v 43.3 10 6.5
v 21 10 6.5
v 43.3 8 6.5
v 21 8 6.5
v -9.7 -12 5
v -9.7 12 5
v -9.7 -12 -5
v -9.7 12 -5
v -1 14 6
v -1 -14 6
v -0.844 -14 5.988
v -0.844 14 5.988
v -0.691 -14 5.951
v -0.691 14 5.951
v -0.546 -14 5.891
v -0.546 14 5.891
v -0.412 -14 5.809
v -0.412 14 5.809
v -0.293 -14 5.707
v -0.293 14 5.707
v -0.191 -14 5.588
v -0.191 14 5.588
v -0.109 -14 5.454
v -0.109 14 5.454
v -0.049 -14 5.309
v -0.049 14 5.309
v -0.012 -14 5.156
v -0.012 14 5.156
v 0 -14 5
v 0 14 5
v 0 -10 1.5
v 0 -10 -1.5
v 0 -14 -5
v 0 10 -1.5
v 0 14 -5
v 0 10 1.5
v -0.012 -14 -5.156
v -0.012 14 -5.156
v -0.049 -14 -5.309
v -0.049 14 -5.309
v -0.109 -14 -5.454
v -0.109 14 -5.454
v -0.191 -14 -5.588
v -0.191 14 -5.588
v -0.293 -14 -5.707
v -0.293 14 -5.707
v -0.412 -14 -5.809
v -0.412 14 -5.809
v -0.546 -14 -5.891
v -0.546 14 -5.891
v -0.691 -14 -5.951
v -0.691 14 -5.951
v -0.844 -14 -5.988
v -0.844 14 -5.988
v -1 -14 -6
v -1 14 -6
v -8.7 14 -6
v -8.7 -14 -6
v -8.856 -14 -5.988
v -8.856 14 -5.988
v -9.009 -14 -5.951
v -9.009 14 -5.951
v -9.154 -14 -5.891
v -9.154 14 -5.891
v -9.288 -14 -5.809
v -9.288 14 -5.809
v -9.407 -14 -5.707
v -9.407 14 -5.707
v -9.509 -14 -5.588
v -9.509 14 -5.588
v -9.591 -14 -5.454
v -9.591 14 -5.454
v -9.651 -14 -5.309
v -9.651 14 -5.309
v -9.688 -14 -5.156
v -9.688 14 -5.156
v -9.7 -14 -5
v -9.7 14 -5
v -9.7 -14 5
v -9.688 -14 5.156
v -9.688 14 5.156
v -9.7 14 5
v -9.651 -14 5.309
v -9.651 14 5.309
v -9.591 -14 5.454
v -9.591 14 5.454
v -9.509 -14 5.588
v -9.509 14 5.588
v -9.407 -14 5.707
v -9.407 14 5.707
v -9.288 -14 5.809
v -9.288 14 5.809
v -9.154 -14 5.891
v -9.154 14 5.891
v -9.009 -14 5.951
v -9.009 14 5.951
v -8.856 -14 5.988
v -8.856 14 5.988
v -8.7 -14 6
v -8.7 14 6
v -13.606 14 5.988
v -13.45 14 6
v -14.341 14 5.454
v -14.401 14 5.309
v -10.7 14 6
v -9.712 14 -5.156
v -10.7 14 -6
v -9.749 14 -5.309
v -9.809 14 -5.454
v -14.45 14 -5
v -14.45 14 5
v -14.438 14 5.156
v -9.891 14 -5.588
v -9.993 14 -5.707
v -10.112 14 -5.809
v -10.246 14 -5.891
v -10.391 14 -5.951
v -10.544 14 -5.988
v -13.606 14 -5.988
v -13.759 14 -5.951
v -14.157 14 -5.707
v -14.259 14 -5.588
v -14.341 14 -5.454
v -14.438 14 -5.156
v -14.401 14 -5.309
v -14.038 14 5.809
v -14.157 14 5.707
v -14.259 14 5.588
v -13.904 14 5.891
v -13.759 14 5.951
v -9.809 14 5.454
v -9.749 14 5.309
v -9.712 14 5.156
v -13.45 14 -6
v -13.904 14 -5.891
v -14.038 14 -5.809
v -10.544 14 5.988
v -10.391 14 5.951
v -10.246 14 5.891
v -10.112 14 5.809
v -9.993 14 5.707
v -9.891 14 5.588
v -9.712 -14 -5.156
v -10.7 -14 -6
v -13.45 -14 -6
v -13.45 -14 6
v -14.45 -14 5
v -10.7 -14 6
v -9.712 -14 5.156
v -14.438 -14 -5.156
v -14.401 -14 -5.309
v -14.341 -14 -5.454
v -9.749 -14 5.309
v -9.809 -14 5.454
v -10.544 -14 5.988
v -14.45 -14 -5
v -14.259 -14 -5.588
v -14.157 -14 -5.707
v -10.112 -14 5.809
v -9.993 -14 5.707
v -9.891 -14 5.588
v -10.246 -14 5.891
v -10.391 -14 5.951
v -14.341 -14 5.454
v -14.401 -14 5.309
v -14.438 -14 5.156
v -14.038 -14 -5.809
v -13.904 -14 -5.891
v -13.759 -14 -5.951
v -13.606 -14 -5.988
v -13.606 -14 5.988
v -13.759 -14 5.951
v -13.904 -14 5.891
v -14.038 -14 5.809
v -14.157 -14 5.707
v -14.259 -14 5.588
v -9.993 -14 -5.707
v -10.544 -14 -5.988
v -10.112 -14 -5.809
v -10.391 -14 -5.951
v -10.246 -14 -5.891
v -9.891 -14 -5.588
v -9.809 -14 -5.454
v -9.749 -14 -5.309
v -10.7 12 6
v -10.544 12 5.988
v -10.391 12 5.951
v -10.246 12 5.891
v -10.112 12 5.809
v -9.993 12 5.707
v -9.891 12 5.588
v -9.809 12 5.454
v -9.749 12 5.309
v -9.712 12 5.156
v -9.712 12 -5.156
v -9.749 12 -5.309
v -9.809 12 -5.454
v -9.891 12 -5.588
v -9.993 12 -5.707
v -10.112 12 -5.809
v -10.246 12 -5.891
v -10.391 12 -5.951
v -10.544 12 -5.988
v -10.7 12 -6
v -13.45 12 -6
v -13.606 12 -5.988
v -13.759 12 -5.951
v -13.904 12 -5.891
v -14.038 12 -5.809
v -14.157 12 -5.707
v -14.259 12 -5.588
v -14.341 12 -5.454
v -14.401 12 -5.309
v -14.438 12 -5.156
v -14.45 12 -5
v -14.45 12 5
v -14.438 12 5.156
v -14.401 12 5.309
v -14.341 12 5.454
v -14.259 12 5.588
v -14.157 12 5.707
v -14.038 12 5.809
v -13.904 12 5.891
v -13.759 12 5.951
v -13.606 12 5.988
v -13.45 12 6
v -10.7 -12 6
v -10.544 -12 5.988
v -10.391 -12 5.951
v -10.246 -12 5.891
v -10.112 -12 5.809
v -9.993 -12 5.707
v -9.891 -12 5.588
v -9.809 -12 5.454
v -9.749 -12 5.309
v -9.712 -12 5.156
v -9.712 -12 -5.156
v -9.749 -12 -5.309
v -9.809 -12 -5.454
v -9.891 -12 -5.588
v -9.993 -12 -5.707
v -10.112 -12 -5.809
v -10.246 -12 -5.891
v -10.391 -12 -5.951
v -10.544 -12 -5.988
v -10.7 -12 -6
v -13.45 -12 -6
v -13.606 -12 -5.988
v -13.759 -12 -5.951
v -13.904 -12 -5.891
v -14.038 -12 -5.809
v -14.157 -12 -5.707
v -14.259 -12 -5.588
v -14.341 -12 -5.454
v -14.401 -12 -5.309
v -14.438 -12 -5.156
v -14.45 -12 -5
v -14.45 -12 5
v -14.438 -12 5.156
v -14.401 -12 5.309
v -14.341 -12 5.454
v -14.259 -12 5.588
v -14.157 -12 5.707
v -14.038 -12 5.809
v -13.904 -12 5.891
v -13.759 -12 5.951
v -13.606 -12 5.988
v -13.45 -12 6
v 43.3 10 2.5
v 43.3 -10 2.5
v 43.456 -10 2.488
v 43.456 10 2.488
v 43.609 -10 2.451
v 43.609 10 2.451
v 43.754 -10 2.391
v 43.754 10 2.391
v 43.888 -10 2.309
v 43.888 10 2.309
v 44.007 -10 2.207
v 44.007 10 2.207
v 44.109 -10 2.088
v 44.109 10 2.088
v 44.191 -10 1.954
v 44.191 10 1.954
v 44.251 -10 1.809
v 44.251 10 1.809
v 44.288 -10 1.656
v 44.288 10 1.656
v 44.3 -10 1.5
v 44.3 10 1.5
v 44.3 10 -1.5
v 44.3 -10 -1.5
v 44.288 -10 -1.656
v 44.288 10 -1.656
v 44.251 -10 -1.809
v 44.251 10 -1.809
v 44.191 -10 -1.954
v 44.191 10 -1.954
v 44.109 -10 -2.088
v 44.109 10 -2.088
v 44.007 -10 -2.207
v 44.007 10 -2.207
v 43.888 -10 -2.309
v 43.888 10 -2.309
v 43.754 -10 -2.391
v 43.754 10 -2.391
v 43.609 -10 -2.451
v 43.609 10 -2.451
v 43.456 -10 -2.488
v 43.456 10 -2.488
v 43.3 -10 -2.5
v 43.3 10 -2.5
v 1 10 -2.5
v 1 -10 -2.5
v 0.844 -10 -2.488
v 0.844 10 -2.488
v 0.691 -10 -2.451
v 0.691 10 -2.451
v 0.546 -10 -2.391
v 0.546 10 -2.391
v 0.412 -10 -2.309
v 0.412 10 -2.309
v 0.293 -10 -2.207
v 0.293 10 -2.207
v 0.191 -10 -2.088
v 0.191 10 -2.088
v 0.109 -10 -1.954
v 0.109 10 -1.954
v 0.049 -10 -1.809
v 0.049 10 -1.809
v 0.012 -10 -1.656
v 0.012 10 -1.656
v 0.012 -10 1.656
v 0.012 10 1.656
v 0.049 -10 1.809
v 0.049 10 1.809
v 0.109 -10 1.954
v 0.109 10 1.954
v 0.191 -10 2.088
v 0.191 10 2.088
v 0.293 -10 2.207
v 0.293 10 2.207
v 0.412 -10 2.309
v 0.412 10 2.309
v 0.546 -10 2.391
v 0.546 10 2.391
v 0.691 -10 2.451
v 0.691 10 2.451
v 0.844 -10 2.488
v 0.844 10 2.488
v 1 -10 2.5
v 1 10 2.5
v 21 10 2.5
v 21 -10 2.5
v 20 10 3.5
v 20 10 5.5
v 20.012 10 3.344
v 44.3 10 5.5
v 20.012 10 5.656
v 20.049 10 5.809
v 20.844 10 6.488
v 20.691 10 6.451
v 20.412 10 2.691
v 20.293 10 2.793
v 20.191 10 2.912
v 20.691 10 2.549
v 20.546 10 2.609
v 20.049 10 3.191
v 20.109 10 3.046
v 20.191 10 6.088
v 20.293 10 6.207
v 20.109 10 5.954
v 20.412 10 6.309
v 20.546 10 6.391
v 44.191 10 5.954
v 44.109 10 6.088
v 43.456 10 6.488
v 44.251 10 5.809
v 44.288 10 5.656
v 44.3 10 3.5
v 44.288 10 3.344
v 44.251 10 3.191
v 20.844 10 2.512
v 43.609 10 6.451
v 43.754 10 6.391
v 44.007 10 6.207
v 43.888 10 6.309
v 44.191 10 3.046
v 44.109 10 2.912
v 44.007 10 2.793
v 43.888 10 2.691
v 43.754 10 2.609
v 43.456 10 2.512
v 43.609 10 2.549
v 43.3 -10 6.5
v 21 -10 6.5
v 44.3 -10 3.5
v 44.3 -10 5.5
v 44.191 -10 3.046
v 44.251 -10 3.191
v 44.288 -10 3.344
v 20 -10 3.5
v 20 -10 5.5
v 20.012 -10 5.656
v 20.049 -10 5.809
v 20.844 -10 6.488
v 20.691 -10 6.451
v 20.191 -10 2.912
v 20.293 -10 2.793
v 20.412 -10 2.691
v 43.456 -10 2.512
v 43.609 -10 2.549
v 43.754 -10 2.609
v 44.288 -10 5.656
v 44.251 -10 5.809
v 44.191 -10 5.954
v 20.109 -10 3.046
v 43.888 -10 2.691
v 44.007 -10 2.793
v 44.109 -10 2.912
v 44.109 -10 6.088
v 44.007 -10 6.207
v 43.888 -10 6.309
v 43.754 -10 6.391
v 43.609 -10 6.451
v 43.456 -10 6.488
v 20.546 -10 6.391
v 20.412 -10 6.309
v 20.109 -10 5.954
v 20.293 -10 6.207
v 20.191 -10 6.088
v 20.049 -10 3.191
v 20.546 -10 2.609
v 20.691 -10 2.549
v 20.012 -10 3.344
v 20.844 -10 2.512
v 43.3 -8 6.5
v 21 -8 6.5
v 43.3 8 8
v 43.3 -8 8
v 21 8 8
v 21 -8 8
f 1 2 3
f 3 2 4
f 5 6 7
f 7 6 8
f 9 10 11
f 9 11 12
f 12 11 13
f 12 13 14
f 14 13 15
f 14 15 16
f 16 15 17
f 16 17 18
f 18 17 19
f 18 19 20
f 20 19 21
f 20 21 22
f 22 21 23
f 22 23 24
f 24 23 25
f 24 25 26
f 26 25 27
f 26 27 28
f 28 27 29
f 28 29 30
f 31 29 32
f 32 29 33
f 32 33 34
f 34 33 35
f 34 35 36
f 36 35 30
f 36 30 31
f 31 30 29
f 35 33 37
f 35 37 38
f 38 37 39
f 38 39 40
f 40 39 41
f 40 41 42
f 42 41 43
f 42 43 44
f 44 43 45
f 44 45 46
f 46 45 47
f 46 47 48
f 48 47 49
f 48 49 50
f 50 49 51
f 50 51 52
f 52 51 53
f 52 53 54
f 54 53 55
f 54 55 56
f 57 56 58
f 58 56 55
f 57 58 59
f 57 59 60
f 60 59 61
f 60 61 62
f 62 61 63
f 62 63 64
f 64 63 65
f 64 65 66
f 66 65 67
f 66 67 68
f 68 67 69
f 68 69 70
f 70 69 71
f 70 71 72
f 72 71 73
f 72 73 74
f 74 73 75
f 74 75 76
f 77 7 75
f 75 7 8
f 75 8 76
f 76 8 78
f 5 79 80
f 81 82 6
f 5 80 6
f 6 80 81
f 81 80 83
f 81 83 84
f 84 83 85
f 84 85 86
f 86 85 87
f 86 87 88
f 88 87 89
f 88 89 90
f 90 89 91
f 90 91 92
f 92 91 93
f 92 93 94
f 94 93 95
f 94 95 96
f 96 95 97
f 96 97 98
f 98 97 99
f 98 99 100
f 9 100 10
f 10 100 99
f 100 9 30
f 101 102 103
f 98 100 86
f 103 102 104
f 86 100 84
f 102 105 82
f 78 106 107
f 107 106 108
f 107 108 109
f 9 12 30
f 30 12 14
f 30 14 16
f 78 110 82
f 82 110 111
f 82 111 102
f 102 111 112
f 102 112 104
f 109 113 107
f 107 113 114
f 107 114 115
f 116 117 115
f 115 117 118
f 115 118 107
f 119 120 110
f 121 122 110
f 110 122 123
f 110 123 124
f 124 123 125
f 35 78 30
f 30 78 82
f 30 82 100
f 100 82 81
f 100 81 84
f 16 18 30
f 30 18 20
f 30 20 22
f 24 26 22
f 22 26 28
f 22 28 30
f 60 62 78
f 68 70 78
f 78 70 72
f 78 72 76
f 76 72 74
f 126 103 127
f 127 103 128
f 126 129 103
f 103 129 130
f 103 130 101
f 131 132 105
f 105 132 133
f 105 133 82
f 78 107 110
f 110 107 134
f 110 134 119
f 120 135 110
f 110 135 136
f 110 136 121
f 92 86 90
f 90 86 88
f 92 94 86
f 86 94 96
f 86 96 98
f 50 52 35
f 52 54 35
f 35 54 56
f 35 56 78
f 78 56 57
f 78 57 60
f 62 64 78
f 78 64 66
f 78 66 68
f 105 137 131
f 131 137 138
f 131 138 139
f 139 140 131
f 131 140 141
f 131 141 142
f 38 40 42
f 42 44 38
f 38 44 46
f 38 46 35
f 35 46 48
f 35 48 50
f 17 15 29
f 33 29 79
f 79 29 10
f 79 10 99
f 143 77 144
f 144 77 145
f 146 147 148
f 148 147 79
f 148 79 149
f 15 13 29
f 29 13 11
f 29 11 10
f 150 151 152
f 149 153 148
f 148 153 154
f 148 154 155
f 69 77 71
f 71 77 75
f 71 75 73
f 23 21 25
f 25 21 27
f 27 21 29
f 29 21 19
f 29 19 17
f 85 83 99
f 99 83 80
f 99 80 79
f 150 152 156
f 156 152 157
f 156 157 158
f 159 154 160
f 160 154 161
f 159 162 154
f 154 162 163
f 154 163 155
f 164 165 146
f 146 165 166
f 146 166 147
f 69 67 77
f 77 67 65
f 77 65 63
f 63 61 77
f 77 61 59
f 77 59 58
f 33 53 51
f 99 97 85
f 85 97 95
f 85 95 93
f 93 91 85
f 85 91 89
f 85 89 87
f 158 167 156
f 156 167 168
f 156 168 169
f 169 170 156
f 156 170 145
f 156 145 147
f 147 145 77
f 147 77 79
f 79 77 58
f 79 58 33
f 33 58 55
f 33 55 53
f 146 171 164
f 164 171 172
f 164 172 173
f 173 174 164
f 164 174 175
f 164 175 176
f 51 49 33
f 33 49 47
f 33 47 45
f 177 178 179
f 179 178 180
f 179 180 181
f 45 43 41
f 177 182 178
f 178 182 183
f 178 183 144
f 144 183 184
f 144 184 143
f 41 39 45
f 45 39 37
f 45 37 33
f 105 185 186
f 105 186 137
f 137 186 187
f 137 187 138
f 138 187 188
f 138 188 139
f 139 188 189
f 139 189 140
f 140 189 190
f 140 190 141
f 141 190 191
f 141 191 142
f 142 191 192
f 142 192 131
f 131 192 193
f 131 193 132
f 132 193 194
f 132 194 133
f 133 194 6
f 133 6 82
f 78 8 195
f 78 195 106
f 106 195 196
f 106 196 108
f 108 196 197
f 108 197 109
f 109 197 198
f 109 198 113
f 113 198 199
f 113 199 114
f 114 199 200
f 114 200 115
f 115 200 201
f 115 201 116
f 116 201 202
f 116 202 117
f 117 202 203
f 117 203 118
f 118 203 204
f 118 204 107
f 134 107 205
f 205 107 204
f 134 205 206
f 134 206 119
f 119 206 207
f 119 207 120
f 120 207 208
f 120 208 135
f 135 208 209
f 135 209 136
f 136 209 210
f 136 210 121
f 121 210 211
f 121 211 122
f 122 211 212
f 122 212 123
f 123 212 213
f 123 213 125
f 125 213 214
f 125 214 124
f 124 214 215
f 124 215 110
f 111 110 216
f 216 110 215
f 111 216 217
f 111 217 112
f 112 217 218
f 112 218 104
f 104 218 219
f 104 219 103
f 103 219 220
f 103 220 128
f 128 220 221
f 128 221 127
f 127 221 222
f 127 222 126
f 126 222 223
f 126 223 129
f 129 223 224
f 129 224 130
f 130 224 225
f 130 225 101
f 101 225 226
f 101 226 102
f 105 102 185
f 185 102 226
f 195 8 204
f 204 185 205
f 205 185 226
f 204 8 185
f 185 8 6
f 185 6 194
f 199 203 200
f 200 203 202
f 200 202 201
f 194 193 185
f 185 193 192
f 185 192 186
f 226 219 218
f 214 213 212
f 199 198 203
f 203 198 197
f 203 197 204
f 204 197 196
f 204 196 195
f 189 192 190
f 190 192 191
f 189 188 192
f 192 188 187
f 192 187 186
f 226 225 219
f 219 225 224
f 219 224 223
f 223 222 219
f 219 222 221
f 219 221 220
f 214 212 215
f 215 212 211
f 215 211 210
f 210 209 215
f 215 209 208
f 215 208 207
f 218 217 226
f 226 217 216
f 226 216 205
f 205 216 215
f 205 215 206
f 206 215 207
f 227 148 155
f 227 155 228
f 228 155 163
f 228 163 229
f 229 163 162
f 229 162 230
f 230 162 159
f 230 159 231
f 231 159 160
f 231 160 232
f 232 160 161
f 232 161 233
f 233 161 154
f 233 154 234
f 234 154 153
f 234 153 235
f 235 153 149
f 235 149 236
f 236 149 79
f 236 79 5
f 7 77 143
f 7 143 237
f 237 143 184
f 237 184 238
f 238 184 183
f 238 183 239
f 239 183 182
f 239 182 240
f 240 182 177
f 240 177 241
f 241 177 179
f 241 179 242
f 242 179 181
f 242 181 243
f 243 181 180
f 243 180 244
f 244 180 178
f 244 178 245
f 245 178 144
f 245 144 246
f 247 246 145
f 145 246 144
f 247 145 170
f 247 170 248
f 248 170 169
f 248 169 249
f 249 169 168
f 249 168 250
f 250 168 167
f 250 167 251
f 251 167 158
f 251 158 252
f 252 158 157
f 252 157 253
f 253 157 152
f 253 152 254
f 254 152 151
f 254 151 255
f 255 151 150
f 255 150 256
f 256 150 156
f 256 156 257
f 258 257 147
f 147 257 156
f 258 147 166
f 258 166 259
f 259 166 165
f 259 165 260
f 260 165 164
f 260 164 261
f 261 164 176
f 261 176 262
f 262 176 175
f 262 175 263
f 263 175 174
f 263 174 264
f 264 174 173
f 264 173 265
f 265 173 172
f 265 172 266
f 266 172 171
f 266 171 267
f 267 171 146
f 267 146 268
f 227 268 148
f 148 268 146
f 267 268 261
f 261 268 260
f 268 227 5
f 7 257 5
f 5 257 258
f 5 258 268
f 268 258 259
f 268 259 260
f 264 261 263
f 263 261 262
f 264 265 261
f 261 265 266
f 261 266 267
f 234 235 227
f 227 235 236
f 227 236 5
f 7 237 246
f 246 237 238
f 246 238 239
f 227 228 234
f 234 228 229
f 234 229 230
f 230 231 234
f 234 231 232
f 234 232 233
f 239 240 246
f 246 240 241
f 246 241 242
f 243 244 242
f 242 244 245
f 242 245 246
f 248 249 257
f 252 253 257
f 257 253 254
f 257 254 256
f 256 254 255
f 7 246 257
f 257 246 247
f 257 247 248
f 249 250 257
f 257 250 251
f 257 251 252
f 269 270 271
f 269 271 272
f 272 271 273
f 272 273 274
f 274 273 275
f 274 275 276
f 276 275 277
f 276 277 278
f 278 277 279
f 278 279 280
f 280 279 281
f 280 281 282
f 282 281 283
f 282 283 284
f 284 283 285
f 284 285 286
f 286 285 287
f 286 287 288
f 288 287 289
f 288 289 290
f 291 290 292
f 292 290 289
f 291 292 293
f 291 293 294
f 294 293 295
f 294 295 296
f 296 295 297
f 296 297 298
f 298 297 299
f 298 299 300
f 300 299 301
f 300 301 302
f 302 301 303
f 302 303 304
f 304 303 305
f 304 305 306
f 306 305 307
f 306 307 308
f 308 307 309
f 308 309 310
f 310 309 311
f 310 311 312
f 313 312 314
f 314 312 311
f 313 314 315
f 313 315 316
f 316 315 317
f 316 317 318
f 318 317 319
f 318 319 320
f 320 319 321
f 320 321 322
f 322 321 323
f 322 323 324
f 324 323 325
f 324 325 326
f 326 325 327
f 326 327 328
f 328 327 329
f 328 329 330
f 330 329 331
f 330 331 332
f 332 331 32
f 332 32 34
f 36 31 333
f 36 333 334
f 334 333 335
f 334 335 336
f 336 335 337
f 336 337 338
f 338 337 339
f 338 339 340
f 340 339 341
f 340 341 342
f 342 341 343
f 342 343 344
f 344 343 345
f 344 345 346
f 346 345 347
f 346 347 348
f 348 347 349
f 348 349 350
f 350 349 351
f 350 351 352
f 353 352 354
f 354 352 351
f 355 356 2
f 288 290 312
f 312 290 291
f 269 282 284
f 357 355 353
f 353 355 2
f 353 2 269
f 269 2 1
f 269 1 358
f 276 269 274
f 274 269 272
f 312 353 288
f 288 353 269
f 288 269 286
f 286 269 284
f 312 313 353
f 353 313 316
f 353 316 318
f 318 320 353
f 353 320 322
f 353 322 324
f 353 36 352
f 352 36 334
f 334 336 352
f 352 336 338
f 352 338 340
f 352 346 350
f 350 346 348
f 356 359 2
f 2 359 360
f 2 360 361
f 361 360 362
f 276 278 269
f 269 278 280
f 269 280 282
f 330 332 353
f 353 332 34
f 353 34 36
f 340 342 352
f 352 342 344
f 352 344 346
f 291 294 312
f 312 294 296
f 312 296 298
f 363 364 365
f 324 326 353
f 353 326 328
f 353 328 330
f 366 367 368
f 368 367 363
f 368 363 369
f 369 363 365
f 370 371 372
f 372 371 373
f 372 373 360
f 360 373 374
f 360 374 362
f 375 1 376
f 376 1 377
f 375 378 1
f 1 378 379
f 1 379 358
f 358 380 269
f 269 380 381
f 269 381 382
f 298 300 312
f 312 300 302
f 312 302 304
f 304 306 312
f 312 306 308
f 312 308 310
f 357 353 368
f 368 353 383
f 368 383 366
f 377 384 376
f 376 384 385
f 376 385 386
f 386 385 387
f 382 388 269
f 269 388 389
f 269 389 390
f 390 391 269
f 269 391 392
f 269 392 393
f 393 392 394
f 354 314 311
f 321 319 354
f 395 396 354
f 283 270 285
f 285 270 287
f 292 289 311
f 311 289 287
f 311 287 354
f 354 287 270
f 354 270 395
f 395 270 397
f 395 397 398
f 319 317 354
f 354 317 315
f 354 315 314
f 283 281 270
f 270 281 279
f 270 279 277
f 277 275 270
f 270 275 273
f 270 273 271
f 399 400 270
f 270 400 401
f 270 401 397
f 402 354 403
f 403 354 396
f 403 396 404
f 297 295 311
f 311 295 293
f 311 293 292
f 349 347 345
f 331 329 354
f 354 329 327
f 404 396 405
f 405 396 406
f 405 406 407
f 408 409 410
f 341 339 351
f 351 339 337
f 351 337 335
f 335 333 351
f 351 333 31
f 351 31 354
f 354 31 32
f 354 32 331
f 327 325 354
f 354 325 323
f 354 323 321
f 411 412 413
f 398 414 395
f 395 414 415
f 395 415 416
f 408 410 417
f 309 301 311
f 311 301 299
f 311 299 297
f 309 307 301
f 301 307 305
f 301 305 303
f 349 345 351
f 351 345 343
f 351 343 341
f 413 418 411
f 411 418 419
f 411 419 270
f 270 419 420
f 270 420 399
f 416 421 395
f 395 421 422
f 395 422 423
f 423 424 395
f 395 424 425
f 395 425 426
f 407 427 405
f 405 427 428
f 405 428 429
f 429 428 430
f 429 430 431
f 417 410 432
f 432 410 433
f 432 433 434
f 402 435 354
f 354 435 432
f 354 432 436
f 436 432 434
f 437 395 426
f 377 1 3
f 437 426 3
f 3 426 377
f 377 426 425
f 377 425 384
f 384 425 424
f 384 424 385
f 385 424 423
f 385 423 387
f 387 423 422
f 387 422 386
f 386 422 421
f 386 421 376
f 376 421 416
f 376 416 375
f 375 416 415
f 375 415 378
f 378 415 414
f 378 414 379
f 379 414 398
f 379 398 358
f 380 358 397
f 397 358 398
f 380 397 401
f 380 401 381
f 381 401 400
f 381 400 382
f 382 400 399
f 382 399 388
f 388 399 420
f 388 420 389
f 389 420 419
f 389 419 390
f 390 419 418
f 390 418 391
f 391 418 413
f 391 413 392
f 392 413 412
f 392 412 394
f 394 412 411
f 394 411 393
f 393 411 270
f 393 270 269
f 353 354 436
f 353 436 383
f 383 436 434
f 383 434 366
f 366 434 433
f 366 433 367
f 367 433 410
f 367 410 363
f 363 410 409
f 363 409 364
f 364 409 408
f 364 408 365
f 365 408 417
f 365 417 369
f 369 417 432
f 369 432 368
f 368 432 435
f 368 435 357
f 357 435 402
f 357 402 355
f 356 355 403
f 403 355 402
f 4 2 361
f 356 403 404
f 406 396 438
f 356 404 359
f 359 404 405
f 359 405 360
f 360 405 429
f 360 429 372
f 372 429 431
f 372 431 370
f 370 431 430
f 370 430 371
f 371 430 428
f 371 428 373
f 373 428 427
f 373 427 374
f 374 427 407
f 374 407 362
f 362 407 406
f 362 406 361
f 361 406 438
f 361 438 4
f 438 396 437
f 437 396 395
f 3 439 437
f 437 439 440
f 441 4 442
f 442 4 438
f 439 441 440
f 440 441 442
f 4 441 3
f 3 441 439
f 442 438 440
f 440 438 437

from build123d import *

# Parameters (mm, degrees)
SLIDER_START          = -14
SLIDER_DEPTH          = 28
RAIL_LIP_TOP_START    = 12
RAIL_LIP_TOP_DEPTH    = 2
RAIL_LIP_BOTTOM_START = -14
RAIL_LIP_BOTTOM_DEPTH = 2
FINGER_START          = -10
FINGER_DEPTH          = 20
JAW_START             = -10
JAW_DEPTH             = 20
GRIP_PAD_START        = -8
SK_6_W                = 22.3
SK_6_H                = 1.5
GRIP_PAD_DEPTH        = 16


with BuildPart() as part:
    # SK_1 → Slider (new body)
    with BuildSketch(Plane(origin=(0, 0, 0), x_dir=(1, 0, 0), z_dir=(0, 1, 0)).offset(SLIDER_START)):
        with BuildLine():
            Line((-8.7, -6), (-1, -6))
            ThreePointArc((-1, -6), (-0.292893219, -5.707106781), (0, -5))
            Line((0, -5), (0, 5))
            ThreePointArc((0, 5), (-0.292893219, 5.707106781), (-1, 6))
            Line((-1, 6), (-8.7, 6))
            ThreePointArc((-8.7, 6), (-9.407106781, 5.707106781), (-9.7, 5))
            Line((-9.7, 5), (-9.7, -5))
            ThreePointArc((-9.7, -5), (-9.407106781, -5.707106781), (-8.7, -6))
        make_face()
    extrude(amount=SLIDER_DEPTH)

    # SK_2 → Rail_Lip_Top (add)
    with BuildSketch(Plane(origin=(0, 0, 0), x_dir=(1, 0, 0), z_dir=(0, 1, 0)).offset(RAIL_LIP_TOP_START)):
        with BuildLine():
            Line((-13.45, -6), (-10.7, -6))
            ThreePointArc((-10.7, -6), (-9.992893219, -5.707106781), (-9.7, -5))
            Line((-9.7, -5), (-9.7, 5))
            ThreePointArc((-9.7, 5), (-9.992893219, 5.707106781), (-10.7, 6))
            Line((-10.7, 6), (-13.45, 6))
            ThreePointArc((-13.45, 6), (-14.157106781, 5.707106781), (-14.45, 5))
            Line((-14.45, 5), (-14.45, -5))
            ThreePointArc((-14.45, -5), (-14.157106781, -5.707106781), (-13.45, -6))
        make_face()
    extrude(amount=RAIL_LIP_TOP_DEPTH)

    # SK_3 → Rail_Lip_Bottom (add)
    with BuildSketch(Plane(origin=(0, 0, 0), x_dir=(1, 0, 0), z_dir=(0, 1, 0)).offset(RAIL_LIP_BOTTOM_START)):
        with BuildLine():
            Line((-13.45, -6), (-10.7, -6))
            ThreePointArc((-10.7, -6), (-9.992893219, -5.707106781), (-9.7, -5))
            Line((-9.7, -5), (-9.7, 5))
            ThreePointArc((-9.7, 5), (-9.992893219, 5.707106781), (-10.7, 6))
            Line((-10.7, 6), (-13.45, 6))
            ThreePointArc((-13.45, 6), (-14.157106781, 5.707106781), (-14.45, 5))
            Line((-14.45, 5), (-14.45, -5))
            ThreePointArc((-14.45, -5), (-14.157106781, -5.707106781), (-13.45, -6))
        make_face()
    extrude(amount=RAIL_LIP_BOTTOM_DEPTH)

    # SK_4 → Finger (add)
    with BuildSketch(Plane(origin=(0, 0, 0), x_dir=(1, 0, 0), z_dir=(0, 1, 0)).offset(FINGER_START)):
        with BuildLine():
            Line((1, -2.5), (43.3, -2.5))
            ThreePointArc((43.3, -2.5), (44.007106781, -2.207106781), (44.3, -1.5))
            Line((44.3, -1.5), (44.3, 1.5))
            ThreePointArc((44.3, 1.5), (44.007106781, 2.207106781), (43.3, 2.5))
            Line((43.3, 2.5), (1, 2.5))
            ThreePointArc((1, 2.5), (0.292893219, 2.207106781), (0, 1.5))
            Line((0, 1.5), (0, -1.5))
            ThreePointArc((0, -1.5), (0.292893219, -2.207106781), (1, -2.5))
        make_face()
    extrude(amount=FINGER_DEPTH)

    # SK_5 → Jaw (add)
    with BuildSketch(Plane(origin=(0, 0, 0), x_dir=(1, 0, 0), z_dir=(0, 1, 0)).offset(JAW_START)):
        with BuildLine():
            Line((21, -6.5), (43.3, -6.5))
            ThreePointArc((43.3, -6.5), (44.007106781, -6.207106781), (44.3, -5.5))
            Line((44.3, -5.5), (44.3, -3.5))
            ThreePointArc((44.3, -3.5), (44.007106781, -2.792893219), (43.3, -2.5))
            Line((43.3, -2.5), (21, -2.5))
            ThreePointArc((21, -2.5), (20.292893219, -2.792893219), (20, -3.5))
            Line((20, -3.5), (20, -5.5))
            ThreePointArc((20, -5.5), (20.292893219, -6.207106781), (21, -6.5))
        make_face()
    extrude(amount=JAW_DEPTH)

    # SK_6 → Grip_Pad (add)
    with BuildSketch(Plane(origin=(0, 0, 0), x_dir=(1, 0, 0), z_dir=(0, 1, 0)).offset(GRIP_PAD_START)):
        with Locations((32.15, -7.25)):
            Rectangle(SK_6_W, SK_6_H)
    extrude(amount=GRIP_PAD_DEPTH)


solid = part.part
